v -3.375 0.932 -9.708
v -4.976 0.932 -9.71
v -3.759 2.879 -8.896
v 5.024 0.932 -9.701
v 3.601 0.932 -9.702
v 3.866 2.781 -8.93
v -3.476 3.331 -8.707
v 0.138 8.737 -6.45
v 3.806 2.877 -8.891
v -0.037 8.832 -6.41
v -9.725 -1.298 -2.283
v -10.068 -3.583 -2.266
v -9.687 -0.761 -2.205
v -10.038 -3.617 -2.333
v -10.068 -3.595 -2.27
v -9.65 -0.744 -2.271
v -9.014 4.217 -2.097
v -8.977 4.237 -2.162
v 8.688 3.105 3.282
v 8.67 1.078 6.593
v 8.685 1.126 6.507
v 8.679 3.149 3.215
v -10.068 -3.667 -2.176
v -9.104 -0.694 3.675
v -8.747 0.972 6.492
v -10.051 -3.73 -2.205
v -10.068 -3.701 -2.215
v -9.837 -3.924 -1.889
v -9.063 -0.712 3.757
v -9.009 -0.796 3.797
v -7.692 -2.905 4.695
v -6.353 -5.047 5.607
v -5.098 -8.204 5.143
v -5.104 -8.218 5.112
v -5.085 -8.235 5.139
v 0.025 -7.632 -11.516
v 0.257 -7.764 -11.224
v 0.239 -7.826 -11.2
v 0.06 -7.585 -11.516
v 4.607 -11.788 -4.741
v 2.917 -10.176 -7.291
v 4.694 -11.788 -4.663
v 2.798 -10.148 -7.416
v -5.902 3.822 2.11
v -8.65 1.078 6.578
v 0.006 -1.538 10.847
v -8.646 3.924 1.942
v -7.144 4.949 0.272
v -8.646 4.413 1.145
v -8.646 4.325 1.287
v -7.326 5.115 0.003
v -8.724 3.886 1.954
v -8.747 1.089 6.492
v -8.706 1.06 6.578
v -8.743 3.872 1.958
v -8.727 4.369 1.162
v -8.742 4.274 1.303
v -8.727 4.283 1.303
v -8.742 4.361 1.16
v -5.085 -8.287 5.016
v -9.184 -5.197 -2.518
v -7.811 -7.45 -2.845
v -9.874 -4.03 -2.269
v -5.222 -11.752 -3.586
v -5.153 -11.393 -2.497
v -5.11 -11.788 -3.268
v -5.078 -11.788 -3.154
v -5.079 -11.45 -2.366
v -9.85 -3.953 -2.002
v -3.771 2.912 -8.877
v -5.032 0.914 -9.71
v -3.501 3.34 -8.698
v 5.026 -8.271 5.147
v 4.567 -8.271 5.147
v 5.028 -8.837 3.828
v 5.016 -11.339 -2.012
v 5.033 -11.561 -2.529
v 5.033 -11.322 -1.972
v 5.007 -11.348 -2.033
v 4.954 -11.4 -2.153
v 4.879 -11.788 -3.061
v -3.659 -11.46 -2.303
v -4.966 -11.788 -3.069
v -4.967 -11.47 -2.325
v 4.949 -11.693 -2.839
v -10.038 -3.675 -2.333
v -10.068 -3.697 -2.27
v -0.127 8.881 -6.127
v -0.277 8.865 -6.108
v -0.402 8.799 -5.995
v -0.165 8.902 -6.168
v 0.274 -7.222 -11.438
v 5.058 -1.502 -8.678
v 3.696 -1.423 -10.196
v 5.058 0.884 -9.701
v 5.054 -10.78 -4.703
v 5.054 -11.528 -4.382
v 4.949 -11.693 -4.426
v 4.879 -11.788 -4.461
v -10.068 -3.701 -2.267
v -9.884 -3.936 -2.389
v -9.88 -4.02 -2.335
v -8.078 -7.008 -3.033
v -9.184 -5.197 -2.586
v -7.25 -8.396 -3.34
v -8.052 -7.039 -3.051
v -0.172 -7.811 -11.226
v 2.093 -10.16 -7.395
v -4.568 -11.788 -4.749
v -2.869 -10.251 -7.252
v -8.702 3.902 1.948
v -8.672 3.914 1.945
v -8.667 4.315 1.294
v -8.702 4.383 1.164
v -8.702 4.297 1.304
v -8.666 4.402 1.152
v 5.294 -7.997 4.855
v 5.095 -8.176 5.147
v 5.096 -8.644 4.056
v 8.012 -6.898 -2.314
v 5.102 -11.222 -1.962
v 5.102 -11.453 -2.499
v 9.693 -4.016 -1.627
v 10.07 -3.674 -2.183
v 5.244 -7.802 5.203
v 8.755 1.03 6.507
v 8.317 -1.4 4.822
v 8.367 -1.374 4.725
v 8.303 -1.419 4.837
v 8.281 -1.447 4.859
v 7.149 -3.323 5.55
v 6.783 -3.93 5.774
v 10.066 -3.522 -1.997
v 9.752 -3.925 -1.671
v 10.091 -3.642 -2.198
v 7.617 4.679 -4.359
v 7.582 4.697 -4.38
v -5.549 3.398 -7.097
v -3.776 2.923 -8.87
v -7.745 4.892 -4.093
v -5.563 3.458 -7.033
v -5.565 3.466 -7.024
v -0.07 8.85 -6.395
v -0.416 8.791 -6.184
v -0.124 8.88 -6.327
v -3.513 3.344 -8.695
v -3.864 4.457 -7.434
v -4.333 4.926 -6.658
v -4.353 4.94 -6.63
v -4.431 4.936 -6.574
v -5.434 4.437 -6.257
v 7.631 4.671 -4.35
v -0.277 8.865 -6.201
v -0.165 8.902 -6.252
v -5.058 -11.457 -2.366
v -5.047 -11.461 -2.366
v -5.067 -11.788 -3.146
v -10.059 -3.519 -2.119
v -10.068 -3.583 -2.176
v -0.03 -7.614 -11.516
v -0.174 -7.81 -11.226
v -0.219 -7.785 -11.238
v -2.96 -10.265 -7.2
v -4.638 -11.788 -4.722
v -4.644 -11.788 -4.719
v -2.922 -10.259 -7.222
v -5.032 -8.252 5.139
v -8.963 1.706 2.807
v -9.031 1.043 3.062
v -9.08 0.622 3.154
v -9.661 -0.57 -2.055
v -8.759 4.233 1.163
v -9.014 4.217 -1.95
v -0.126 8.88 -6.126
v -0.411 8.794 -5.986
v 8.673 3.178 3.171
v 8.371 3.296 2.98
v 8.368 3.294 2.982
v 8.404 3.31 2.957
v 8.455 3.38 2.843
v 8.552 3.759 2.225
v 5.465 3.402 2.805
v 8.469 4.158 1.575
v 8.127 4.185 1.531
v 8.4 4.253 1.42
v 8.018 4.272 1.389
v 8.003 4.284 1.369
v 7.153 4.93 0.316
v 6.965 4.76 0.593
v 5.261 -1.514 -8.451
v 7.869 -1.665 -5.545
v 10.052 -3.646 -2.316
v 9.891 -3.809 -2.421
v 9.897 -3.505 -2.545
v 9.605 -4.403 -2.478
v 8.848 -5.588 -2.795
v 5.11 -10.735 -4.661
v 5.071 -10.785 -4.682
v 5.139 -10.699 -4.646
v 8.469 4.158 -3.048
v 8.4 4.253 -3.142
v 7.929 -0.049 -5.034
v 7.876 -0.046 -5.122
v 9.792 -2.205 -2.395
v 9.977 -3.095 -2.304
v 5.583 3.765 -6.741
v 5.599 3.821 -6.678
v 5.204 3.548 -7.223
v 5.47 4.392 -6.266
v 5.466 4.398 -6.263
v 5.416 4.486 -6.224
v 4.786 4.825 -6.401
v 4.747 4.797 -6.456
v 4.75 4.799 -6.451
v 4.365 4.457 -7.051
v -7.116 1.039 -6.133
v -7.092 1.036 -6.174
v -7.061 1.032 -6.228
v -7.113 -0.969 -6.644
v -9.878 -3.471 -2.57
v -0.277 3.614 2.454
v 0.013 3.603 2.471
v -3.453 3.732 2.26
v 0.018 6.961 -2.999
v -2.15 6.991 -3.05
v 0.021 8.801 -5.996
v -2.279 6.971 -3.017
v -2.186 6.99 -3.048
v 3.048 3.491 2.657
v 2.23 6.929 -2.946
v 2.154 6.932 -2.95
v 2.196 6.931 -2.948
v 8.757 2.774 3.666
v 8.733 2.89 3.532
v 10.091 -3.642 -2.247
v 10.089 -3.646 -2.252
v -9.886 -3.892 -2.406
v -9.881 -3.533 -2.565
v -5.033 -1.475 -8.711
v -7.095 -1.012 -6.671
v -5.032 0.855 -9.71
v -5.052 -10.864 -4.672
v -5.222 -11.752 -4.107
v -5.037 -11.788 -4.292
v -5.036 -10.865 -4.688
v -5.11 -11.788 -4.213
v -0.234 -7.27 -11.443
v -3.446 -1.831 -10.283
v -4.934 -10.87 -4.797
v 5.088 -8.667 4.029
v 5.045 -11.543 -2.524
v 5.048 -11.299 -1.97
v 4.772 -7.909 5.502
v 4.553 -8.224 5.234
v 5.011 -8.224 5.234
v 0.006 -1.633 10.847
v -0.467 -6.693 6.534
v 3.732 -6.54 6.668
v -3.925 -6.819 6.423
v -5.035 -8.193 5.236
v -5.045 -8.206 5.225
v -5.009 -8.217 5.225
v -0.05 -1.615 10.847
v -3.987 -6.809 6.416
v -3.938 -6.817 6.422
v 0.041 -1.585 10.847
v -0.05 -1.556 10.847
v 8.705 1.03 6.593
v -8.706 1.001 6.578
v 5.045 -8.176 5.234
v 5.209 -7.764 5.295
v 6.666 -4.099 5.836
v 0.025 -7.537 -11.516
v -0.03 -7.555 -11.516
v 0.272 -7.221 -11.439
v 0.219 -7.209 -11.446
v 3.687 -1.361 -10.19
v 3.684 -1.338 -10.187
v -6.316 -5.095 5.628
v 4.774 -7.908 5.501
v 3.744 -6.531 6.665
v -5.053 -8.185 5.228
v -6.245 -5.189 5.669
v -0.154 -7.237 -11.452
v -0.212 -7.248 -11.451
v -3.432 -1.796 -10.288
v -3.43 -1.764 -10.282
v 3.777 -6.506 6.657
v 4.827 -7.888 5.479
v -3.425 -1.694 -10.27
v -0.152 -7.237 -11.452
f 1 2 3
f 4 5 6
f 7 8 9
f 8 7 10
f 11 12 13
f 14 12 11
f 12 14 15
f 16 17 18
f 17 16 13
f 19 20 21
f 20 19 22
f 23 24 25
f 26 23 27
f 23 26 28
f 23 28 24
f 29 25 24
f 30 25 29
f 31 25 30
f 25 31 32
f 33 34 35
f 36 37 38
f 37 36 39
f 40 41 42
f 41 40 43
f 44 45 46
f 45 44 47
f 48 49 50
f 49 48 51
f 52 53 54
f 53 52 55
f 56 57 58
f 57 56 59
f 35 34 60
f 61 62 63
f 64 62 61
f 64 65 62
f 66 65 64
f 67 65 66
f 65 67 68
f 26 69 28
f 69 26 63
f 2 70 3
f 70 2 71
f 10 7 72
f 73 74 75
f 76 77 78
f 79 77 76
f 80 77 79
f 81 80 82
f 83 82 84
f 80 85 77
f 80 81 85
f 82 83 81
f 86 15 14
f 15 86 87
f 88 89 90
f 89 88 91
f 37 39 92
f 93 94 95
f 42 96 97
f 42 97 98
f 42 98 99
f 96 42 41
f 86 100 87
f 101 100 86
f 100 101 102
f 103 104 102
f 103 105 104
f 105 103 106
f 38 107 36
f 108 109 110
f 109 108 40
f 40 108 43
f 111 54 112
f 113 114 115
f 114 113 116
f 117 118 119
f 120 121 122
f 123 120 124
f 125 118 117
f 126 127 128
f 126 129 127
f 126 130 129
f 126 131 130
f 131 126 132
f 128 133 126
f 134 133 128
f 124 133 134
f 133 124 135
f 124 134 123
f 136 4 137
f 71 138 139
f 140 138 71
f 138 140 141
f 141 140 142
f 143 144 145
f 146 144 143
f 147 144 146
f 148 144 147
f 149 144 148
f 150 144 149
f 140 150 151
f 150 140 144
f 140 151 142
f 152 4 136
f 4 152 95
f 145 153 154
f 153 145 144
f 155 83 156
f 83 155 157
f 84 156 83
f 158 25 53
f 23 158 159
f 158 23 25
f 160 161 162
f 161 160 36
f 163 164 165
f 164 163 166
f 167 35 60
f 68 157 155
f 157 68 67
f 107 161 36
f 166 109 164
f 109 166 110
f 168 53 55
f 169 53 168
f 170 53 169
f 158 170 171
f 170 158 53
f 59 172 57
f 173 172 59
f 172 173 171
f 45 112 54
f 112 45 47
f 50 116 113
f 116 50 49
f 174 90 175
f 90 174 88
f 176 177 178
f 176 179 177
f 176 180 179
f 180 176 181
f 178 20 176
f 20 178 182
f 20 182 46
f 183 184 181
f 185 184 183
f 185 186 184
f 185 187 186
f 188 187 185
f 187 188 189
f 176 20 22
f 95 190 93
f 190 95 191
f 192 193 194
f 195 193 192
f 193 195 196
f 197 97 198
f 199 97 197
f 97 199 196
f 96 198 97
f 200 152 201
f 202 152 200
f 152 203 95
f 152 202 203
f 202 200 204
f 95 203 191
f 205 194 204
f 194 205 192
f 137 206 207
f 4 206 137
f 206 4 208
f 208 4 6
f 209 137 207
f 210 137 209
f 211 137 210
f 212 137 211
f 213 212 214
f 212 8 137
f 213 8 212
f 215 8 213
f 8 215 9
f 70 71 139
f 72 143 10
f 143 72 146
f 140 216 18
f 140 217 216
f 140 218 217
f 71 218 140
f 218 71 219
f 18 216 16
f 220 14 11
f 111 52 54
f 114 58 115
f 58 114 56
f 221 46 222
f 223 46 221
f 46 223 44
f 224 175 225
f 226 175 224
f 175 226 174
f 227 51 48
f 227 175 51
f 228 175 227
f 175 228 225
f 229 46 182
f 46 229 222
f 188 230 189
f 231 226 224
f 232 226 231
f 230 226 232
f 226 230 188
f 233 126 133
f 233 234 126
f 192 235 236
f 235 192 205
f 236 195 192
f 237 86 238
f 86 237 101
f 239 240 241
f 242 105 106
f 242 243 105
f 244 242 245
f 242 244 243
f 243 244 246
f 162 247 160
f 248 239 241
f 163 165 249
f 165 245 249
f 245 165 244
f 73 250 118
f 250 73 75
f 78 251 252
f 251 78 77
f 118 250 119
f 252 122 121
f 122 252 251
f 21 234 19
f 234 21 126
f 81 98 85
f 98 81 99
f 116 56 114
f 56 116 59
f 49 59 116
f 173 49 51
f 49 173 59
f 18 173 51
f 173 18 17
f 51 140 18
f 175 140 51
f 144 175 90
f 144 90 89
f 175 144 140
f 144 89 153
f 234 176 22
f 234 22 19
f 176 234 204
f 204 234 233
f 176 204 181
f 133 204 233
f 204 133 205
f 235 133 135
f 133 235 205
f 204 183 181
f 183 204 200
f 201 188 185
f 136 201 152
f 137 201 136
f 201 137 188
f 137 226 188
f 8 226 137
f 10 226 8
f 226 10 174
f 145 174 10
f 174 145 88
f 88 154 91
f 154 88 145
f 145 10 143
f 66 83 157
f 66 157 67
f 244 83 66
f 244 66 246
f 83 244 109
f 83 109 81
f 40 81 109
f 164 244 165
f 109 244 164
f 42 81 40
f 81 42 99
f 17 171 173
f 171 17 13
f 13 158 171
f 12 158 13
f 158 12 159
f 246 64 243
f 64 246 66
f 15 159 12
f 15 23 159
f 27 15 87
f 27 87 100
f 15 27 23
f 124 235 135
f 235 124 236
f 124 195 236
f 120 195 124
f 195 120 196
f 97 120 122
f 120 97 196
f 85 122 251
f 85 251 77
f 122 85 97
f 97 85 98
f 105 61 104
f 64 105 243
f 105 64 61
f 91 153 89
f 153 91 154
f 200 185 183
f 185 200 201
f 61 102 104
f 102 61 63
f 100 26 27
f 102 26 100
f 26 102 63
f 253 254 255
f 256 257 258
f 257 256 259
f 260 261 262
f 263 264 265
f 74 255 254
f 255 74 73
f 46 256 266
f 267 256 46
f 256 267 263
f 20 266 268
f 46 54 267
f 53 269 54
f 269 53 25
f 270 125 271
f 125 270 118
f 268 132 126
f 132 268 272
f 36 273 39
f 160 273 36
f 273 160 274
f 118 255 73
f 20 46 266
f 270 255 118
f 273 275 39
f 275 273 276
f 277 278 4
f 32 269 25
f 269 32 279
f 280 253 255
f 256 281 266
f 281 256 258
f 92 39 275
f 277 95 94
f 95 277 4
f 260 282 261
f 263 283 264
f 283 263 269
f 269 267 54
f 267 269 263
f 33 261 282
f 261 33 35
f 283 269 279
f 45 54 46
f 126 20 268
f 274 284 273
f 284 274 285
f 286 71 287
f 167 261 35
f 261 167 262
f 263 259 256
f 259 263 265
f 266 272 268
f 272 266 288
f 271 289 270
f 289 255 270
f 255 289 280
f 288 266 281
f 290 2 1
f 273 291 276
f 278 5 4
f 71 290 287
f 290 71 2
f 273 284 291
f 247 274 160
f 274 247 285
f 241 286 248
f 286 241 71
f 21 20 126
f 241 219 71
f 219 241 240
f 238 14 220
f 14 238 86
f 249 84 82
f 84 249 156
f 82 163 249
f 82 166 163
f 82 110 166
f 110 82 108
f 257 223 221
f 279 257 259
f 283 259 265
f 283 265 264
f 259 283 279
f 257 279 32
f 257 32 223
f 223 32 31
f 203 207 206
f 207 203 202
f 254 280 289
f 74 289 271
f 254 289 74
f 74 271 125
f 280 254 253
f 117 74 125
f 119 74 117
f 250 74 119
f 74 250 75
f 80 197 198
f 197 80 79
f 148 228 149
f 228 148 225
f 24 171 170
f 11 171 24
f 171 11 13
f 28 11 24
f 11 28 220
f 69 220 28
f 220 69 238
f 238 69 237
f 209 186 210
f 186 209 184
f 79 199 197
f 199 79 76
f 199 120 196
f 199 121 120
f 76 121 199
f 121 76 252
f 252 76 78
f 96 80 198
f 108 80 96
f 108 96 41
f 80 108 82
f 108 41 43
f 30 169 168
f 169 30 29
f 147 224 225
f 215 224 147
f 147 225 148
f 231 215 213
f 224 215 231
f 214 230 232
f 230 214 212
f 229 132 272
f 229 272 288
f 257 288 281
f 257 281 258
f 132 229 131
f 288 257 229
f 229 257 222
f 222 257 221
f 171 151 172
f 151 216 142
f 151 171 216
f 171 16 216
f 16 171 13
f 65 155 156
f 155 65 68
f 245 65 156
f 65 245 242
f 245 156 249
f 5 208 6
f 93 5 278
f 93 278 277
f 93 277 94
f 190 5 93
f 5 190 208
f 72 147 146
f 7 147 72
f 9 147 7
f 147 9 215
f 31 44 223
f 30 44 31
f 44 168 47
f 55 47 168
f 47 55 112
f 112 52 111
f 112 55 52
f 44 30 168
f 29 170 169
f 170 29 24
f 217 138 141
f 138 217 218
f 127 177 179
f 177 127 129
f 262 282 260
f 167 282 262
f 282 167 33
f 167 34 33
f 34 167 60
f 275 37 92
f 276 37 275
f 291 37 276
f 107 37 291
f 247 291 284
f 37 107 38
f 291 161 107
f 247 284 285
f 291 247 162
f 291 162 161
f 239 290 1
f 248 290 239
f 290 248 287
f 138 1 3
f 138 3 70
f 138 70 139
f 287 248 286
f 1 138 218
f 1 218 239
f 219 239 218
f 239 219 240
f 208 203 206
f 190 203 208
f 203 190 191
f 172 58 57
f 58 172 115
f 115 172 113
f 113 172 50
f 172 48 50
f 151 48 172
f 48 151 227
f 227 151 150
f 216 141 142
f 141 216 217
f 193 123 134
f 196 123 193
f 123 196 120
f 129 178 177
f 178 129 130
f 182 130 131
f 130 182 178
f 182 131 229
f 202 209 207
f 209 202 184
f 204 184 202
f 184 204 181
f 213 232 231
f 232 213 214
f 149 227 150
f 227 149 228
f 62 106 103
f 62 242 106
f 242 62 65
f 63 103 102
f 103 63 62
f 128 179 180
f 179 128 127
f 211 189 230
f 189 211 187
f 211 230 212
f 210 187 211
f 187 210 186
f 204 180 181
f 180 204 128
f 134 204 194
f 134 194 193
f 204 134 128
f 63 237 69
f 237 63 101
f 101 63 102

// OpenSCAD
// Auto-generated OpenSCAD file

    inner_points = 10*[[-0.9987270749614695, -0.364205811638524, -0.4436890860803185], [0.9991182313764295, -0.36420581163853794, -0.35087673806764436], [-0.4844601077687184, 0.4409094125179242, -0.7391869071989888], [-0.5140713889852709, -1.1693210357949793, -0.10178509095531102], [0.5144625454002312, 0.4409094125179172, -0.6927807331926518], [0.4848512641836786, -1.1693210357949864, -0.055378916948973976], [-0.8932613027512826, 0.41583146142721766, 0.17309193139693055], [-0.9103573839327088, -0.513835521363569, 0.5410960415871743], [0.8369234853688419, 0.41583146142720556, 0.25346978256078845], [0.8198274041874156, -0.5138355213635811, 0.6214738927510323], [-0.019620868100507078, 0.8806649528226049, 0.029278801883737618], [-0.0538130304633598, -0.9786690127589686, 0.7652870222642252], [-0.46897543145439324, -0.933375714707972, -1.0725044943214548], [0.5299472217145562, -0.9333757147079789, -1.0260983203151177], [0.04529153573835777, -0.12826049055152355, -1.3680023154401253]];

    outer_points = 10*[[-0.9998038282183614, -0.36459847125866063, -0.22466188312211807], [1.0001954063490741, -0.36459847125866063, -0.22291210322967533], [-0.499158278691538, 0.08842950542533667, -0.9623065713566289], [-0.500449760461467, -0.8176264479426579, 0.513857695058614], [0.5008413385921798, 0.08842950542533667, -0.9614316814104075], [0.4995498568222507, -0.8176264479426579, 0.5147325850048354], [-0.8658480427340112, 0.626154295547598, -0.20310260203452007], [-0.8665936800815331, 0.10304264696972326, 0.6491612345484268], [0.8662021019508204, 0.626154295547598, -0.20158724819663343], [0.8654564646032984, 0.10304264696972326, 0.6506765883863135], [0.0005498482821656634, 0.8877101198365354, -0.6284768434070501], [-0.0009414264128783963, -0.1585131773192141, 1.0760508297588436], [-0.4996455845307593, -1.2114785717593914, -0.4053157694550875], [0.5003540327529584, -1.2114785717593914, -0.4044408795088661], [0.0009999649960640952, -0.7584505950753941, -1.1429604576895982]];

    // Convex hull for inner set (I)
    module inner_hull() {
        hull() {
            for (p = inner_points) {
                translate(p) sphere(r=0.1);
            }
        }
    }

    // Convex hull for outer set (O) minus inner hull (O \ I)
    module outer_minus_inner() {
        difference() {
            hull() {
                for (p = outer_points) {
                    translate(p) sphere(r=0.1);
                }
            }
            inner_hull(); // Subtract inner hull
        }
    }

    // Convex hull for outer set (O) minus all translated inner hulls
    module outer_minus_AllTranslationInner() {
        difference() {
            hull() {
                for (p = outer_points) {
                    translate(p) sphere(r=0.1);
                }
            }
            hull() {
                translate([0,0,50]) inner_hull();
                translate([0,0,-50]) inner_hull();
            }; // Subtract translated inner hulls
        }
    }

    // Difference between outer_minus_inner and outer_minus_AllTranslationInner
    module outer_minus_inner_diff() {
        difference() {
            // Outer minus inner
            difference() {
                hull() {
                    for (p = outer_points) {
                        translate(p) sphere(r=0.1);
                    }
                }
                inner_hull();
            }

            // Subtract Outer minus AllTranslationInner
            difference() {
                hull() {
                    for (p = outer_points) {
                        translate(p) sphere(r=0.1);
                    }
                }
                hull() {
                    translate([0,0,50]) inner_hull();
                    translate([0,0,-50]) inner_hull();
                };
            }
        }
    }

    // Rendering all with colors applied
    color([1, 1, 0, 1]) outer_minus_inner_diff(); // Opaque yellow
    
